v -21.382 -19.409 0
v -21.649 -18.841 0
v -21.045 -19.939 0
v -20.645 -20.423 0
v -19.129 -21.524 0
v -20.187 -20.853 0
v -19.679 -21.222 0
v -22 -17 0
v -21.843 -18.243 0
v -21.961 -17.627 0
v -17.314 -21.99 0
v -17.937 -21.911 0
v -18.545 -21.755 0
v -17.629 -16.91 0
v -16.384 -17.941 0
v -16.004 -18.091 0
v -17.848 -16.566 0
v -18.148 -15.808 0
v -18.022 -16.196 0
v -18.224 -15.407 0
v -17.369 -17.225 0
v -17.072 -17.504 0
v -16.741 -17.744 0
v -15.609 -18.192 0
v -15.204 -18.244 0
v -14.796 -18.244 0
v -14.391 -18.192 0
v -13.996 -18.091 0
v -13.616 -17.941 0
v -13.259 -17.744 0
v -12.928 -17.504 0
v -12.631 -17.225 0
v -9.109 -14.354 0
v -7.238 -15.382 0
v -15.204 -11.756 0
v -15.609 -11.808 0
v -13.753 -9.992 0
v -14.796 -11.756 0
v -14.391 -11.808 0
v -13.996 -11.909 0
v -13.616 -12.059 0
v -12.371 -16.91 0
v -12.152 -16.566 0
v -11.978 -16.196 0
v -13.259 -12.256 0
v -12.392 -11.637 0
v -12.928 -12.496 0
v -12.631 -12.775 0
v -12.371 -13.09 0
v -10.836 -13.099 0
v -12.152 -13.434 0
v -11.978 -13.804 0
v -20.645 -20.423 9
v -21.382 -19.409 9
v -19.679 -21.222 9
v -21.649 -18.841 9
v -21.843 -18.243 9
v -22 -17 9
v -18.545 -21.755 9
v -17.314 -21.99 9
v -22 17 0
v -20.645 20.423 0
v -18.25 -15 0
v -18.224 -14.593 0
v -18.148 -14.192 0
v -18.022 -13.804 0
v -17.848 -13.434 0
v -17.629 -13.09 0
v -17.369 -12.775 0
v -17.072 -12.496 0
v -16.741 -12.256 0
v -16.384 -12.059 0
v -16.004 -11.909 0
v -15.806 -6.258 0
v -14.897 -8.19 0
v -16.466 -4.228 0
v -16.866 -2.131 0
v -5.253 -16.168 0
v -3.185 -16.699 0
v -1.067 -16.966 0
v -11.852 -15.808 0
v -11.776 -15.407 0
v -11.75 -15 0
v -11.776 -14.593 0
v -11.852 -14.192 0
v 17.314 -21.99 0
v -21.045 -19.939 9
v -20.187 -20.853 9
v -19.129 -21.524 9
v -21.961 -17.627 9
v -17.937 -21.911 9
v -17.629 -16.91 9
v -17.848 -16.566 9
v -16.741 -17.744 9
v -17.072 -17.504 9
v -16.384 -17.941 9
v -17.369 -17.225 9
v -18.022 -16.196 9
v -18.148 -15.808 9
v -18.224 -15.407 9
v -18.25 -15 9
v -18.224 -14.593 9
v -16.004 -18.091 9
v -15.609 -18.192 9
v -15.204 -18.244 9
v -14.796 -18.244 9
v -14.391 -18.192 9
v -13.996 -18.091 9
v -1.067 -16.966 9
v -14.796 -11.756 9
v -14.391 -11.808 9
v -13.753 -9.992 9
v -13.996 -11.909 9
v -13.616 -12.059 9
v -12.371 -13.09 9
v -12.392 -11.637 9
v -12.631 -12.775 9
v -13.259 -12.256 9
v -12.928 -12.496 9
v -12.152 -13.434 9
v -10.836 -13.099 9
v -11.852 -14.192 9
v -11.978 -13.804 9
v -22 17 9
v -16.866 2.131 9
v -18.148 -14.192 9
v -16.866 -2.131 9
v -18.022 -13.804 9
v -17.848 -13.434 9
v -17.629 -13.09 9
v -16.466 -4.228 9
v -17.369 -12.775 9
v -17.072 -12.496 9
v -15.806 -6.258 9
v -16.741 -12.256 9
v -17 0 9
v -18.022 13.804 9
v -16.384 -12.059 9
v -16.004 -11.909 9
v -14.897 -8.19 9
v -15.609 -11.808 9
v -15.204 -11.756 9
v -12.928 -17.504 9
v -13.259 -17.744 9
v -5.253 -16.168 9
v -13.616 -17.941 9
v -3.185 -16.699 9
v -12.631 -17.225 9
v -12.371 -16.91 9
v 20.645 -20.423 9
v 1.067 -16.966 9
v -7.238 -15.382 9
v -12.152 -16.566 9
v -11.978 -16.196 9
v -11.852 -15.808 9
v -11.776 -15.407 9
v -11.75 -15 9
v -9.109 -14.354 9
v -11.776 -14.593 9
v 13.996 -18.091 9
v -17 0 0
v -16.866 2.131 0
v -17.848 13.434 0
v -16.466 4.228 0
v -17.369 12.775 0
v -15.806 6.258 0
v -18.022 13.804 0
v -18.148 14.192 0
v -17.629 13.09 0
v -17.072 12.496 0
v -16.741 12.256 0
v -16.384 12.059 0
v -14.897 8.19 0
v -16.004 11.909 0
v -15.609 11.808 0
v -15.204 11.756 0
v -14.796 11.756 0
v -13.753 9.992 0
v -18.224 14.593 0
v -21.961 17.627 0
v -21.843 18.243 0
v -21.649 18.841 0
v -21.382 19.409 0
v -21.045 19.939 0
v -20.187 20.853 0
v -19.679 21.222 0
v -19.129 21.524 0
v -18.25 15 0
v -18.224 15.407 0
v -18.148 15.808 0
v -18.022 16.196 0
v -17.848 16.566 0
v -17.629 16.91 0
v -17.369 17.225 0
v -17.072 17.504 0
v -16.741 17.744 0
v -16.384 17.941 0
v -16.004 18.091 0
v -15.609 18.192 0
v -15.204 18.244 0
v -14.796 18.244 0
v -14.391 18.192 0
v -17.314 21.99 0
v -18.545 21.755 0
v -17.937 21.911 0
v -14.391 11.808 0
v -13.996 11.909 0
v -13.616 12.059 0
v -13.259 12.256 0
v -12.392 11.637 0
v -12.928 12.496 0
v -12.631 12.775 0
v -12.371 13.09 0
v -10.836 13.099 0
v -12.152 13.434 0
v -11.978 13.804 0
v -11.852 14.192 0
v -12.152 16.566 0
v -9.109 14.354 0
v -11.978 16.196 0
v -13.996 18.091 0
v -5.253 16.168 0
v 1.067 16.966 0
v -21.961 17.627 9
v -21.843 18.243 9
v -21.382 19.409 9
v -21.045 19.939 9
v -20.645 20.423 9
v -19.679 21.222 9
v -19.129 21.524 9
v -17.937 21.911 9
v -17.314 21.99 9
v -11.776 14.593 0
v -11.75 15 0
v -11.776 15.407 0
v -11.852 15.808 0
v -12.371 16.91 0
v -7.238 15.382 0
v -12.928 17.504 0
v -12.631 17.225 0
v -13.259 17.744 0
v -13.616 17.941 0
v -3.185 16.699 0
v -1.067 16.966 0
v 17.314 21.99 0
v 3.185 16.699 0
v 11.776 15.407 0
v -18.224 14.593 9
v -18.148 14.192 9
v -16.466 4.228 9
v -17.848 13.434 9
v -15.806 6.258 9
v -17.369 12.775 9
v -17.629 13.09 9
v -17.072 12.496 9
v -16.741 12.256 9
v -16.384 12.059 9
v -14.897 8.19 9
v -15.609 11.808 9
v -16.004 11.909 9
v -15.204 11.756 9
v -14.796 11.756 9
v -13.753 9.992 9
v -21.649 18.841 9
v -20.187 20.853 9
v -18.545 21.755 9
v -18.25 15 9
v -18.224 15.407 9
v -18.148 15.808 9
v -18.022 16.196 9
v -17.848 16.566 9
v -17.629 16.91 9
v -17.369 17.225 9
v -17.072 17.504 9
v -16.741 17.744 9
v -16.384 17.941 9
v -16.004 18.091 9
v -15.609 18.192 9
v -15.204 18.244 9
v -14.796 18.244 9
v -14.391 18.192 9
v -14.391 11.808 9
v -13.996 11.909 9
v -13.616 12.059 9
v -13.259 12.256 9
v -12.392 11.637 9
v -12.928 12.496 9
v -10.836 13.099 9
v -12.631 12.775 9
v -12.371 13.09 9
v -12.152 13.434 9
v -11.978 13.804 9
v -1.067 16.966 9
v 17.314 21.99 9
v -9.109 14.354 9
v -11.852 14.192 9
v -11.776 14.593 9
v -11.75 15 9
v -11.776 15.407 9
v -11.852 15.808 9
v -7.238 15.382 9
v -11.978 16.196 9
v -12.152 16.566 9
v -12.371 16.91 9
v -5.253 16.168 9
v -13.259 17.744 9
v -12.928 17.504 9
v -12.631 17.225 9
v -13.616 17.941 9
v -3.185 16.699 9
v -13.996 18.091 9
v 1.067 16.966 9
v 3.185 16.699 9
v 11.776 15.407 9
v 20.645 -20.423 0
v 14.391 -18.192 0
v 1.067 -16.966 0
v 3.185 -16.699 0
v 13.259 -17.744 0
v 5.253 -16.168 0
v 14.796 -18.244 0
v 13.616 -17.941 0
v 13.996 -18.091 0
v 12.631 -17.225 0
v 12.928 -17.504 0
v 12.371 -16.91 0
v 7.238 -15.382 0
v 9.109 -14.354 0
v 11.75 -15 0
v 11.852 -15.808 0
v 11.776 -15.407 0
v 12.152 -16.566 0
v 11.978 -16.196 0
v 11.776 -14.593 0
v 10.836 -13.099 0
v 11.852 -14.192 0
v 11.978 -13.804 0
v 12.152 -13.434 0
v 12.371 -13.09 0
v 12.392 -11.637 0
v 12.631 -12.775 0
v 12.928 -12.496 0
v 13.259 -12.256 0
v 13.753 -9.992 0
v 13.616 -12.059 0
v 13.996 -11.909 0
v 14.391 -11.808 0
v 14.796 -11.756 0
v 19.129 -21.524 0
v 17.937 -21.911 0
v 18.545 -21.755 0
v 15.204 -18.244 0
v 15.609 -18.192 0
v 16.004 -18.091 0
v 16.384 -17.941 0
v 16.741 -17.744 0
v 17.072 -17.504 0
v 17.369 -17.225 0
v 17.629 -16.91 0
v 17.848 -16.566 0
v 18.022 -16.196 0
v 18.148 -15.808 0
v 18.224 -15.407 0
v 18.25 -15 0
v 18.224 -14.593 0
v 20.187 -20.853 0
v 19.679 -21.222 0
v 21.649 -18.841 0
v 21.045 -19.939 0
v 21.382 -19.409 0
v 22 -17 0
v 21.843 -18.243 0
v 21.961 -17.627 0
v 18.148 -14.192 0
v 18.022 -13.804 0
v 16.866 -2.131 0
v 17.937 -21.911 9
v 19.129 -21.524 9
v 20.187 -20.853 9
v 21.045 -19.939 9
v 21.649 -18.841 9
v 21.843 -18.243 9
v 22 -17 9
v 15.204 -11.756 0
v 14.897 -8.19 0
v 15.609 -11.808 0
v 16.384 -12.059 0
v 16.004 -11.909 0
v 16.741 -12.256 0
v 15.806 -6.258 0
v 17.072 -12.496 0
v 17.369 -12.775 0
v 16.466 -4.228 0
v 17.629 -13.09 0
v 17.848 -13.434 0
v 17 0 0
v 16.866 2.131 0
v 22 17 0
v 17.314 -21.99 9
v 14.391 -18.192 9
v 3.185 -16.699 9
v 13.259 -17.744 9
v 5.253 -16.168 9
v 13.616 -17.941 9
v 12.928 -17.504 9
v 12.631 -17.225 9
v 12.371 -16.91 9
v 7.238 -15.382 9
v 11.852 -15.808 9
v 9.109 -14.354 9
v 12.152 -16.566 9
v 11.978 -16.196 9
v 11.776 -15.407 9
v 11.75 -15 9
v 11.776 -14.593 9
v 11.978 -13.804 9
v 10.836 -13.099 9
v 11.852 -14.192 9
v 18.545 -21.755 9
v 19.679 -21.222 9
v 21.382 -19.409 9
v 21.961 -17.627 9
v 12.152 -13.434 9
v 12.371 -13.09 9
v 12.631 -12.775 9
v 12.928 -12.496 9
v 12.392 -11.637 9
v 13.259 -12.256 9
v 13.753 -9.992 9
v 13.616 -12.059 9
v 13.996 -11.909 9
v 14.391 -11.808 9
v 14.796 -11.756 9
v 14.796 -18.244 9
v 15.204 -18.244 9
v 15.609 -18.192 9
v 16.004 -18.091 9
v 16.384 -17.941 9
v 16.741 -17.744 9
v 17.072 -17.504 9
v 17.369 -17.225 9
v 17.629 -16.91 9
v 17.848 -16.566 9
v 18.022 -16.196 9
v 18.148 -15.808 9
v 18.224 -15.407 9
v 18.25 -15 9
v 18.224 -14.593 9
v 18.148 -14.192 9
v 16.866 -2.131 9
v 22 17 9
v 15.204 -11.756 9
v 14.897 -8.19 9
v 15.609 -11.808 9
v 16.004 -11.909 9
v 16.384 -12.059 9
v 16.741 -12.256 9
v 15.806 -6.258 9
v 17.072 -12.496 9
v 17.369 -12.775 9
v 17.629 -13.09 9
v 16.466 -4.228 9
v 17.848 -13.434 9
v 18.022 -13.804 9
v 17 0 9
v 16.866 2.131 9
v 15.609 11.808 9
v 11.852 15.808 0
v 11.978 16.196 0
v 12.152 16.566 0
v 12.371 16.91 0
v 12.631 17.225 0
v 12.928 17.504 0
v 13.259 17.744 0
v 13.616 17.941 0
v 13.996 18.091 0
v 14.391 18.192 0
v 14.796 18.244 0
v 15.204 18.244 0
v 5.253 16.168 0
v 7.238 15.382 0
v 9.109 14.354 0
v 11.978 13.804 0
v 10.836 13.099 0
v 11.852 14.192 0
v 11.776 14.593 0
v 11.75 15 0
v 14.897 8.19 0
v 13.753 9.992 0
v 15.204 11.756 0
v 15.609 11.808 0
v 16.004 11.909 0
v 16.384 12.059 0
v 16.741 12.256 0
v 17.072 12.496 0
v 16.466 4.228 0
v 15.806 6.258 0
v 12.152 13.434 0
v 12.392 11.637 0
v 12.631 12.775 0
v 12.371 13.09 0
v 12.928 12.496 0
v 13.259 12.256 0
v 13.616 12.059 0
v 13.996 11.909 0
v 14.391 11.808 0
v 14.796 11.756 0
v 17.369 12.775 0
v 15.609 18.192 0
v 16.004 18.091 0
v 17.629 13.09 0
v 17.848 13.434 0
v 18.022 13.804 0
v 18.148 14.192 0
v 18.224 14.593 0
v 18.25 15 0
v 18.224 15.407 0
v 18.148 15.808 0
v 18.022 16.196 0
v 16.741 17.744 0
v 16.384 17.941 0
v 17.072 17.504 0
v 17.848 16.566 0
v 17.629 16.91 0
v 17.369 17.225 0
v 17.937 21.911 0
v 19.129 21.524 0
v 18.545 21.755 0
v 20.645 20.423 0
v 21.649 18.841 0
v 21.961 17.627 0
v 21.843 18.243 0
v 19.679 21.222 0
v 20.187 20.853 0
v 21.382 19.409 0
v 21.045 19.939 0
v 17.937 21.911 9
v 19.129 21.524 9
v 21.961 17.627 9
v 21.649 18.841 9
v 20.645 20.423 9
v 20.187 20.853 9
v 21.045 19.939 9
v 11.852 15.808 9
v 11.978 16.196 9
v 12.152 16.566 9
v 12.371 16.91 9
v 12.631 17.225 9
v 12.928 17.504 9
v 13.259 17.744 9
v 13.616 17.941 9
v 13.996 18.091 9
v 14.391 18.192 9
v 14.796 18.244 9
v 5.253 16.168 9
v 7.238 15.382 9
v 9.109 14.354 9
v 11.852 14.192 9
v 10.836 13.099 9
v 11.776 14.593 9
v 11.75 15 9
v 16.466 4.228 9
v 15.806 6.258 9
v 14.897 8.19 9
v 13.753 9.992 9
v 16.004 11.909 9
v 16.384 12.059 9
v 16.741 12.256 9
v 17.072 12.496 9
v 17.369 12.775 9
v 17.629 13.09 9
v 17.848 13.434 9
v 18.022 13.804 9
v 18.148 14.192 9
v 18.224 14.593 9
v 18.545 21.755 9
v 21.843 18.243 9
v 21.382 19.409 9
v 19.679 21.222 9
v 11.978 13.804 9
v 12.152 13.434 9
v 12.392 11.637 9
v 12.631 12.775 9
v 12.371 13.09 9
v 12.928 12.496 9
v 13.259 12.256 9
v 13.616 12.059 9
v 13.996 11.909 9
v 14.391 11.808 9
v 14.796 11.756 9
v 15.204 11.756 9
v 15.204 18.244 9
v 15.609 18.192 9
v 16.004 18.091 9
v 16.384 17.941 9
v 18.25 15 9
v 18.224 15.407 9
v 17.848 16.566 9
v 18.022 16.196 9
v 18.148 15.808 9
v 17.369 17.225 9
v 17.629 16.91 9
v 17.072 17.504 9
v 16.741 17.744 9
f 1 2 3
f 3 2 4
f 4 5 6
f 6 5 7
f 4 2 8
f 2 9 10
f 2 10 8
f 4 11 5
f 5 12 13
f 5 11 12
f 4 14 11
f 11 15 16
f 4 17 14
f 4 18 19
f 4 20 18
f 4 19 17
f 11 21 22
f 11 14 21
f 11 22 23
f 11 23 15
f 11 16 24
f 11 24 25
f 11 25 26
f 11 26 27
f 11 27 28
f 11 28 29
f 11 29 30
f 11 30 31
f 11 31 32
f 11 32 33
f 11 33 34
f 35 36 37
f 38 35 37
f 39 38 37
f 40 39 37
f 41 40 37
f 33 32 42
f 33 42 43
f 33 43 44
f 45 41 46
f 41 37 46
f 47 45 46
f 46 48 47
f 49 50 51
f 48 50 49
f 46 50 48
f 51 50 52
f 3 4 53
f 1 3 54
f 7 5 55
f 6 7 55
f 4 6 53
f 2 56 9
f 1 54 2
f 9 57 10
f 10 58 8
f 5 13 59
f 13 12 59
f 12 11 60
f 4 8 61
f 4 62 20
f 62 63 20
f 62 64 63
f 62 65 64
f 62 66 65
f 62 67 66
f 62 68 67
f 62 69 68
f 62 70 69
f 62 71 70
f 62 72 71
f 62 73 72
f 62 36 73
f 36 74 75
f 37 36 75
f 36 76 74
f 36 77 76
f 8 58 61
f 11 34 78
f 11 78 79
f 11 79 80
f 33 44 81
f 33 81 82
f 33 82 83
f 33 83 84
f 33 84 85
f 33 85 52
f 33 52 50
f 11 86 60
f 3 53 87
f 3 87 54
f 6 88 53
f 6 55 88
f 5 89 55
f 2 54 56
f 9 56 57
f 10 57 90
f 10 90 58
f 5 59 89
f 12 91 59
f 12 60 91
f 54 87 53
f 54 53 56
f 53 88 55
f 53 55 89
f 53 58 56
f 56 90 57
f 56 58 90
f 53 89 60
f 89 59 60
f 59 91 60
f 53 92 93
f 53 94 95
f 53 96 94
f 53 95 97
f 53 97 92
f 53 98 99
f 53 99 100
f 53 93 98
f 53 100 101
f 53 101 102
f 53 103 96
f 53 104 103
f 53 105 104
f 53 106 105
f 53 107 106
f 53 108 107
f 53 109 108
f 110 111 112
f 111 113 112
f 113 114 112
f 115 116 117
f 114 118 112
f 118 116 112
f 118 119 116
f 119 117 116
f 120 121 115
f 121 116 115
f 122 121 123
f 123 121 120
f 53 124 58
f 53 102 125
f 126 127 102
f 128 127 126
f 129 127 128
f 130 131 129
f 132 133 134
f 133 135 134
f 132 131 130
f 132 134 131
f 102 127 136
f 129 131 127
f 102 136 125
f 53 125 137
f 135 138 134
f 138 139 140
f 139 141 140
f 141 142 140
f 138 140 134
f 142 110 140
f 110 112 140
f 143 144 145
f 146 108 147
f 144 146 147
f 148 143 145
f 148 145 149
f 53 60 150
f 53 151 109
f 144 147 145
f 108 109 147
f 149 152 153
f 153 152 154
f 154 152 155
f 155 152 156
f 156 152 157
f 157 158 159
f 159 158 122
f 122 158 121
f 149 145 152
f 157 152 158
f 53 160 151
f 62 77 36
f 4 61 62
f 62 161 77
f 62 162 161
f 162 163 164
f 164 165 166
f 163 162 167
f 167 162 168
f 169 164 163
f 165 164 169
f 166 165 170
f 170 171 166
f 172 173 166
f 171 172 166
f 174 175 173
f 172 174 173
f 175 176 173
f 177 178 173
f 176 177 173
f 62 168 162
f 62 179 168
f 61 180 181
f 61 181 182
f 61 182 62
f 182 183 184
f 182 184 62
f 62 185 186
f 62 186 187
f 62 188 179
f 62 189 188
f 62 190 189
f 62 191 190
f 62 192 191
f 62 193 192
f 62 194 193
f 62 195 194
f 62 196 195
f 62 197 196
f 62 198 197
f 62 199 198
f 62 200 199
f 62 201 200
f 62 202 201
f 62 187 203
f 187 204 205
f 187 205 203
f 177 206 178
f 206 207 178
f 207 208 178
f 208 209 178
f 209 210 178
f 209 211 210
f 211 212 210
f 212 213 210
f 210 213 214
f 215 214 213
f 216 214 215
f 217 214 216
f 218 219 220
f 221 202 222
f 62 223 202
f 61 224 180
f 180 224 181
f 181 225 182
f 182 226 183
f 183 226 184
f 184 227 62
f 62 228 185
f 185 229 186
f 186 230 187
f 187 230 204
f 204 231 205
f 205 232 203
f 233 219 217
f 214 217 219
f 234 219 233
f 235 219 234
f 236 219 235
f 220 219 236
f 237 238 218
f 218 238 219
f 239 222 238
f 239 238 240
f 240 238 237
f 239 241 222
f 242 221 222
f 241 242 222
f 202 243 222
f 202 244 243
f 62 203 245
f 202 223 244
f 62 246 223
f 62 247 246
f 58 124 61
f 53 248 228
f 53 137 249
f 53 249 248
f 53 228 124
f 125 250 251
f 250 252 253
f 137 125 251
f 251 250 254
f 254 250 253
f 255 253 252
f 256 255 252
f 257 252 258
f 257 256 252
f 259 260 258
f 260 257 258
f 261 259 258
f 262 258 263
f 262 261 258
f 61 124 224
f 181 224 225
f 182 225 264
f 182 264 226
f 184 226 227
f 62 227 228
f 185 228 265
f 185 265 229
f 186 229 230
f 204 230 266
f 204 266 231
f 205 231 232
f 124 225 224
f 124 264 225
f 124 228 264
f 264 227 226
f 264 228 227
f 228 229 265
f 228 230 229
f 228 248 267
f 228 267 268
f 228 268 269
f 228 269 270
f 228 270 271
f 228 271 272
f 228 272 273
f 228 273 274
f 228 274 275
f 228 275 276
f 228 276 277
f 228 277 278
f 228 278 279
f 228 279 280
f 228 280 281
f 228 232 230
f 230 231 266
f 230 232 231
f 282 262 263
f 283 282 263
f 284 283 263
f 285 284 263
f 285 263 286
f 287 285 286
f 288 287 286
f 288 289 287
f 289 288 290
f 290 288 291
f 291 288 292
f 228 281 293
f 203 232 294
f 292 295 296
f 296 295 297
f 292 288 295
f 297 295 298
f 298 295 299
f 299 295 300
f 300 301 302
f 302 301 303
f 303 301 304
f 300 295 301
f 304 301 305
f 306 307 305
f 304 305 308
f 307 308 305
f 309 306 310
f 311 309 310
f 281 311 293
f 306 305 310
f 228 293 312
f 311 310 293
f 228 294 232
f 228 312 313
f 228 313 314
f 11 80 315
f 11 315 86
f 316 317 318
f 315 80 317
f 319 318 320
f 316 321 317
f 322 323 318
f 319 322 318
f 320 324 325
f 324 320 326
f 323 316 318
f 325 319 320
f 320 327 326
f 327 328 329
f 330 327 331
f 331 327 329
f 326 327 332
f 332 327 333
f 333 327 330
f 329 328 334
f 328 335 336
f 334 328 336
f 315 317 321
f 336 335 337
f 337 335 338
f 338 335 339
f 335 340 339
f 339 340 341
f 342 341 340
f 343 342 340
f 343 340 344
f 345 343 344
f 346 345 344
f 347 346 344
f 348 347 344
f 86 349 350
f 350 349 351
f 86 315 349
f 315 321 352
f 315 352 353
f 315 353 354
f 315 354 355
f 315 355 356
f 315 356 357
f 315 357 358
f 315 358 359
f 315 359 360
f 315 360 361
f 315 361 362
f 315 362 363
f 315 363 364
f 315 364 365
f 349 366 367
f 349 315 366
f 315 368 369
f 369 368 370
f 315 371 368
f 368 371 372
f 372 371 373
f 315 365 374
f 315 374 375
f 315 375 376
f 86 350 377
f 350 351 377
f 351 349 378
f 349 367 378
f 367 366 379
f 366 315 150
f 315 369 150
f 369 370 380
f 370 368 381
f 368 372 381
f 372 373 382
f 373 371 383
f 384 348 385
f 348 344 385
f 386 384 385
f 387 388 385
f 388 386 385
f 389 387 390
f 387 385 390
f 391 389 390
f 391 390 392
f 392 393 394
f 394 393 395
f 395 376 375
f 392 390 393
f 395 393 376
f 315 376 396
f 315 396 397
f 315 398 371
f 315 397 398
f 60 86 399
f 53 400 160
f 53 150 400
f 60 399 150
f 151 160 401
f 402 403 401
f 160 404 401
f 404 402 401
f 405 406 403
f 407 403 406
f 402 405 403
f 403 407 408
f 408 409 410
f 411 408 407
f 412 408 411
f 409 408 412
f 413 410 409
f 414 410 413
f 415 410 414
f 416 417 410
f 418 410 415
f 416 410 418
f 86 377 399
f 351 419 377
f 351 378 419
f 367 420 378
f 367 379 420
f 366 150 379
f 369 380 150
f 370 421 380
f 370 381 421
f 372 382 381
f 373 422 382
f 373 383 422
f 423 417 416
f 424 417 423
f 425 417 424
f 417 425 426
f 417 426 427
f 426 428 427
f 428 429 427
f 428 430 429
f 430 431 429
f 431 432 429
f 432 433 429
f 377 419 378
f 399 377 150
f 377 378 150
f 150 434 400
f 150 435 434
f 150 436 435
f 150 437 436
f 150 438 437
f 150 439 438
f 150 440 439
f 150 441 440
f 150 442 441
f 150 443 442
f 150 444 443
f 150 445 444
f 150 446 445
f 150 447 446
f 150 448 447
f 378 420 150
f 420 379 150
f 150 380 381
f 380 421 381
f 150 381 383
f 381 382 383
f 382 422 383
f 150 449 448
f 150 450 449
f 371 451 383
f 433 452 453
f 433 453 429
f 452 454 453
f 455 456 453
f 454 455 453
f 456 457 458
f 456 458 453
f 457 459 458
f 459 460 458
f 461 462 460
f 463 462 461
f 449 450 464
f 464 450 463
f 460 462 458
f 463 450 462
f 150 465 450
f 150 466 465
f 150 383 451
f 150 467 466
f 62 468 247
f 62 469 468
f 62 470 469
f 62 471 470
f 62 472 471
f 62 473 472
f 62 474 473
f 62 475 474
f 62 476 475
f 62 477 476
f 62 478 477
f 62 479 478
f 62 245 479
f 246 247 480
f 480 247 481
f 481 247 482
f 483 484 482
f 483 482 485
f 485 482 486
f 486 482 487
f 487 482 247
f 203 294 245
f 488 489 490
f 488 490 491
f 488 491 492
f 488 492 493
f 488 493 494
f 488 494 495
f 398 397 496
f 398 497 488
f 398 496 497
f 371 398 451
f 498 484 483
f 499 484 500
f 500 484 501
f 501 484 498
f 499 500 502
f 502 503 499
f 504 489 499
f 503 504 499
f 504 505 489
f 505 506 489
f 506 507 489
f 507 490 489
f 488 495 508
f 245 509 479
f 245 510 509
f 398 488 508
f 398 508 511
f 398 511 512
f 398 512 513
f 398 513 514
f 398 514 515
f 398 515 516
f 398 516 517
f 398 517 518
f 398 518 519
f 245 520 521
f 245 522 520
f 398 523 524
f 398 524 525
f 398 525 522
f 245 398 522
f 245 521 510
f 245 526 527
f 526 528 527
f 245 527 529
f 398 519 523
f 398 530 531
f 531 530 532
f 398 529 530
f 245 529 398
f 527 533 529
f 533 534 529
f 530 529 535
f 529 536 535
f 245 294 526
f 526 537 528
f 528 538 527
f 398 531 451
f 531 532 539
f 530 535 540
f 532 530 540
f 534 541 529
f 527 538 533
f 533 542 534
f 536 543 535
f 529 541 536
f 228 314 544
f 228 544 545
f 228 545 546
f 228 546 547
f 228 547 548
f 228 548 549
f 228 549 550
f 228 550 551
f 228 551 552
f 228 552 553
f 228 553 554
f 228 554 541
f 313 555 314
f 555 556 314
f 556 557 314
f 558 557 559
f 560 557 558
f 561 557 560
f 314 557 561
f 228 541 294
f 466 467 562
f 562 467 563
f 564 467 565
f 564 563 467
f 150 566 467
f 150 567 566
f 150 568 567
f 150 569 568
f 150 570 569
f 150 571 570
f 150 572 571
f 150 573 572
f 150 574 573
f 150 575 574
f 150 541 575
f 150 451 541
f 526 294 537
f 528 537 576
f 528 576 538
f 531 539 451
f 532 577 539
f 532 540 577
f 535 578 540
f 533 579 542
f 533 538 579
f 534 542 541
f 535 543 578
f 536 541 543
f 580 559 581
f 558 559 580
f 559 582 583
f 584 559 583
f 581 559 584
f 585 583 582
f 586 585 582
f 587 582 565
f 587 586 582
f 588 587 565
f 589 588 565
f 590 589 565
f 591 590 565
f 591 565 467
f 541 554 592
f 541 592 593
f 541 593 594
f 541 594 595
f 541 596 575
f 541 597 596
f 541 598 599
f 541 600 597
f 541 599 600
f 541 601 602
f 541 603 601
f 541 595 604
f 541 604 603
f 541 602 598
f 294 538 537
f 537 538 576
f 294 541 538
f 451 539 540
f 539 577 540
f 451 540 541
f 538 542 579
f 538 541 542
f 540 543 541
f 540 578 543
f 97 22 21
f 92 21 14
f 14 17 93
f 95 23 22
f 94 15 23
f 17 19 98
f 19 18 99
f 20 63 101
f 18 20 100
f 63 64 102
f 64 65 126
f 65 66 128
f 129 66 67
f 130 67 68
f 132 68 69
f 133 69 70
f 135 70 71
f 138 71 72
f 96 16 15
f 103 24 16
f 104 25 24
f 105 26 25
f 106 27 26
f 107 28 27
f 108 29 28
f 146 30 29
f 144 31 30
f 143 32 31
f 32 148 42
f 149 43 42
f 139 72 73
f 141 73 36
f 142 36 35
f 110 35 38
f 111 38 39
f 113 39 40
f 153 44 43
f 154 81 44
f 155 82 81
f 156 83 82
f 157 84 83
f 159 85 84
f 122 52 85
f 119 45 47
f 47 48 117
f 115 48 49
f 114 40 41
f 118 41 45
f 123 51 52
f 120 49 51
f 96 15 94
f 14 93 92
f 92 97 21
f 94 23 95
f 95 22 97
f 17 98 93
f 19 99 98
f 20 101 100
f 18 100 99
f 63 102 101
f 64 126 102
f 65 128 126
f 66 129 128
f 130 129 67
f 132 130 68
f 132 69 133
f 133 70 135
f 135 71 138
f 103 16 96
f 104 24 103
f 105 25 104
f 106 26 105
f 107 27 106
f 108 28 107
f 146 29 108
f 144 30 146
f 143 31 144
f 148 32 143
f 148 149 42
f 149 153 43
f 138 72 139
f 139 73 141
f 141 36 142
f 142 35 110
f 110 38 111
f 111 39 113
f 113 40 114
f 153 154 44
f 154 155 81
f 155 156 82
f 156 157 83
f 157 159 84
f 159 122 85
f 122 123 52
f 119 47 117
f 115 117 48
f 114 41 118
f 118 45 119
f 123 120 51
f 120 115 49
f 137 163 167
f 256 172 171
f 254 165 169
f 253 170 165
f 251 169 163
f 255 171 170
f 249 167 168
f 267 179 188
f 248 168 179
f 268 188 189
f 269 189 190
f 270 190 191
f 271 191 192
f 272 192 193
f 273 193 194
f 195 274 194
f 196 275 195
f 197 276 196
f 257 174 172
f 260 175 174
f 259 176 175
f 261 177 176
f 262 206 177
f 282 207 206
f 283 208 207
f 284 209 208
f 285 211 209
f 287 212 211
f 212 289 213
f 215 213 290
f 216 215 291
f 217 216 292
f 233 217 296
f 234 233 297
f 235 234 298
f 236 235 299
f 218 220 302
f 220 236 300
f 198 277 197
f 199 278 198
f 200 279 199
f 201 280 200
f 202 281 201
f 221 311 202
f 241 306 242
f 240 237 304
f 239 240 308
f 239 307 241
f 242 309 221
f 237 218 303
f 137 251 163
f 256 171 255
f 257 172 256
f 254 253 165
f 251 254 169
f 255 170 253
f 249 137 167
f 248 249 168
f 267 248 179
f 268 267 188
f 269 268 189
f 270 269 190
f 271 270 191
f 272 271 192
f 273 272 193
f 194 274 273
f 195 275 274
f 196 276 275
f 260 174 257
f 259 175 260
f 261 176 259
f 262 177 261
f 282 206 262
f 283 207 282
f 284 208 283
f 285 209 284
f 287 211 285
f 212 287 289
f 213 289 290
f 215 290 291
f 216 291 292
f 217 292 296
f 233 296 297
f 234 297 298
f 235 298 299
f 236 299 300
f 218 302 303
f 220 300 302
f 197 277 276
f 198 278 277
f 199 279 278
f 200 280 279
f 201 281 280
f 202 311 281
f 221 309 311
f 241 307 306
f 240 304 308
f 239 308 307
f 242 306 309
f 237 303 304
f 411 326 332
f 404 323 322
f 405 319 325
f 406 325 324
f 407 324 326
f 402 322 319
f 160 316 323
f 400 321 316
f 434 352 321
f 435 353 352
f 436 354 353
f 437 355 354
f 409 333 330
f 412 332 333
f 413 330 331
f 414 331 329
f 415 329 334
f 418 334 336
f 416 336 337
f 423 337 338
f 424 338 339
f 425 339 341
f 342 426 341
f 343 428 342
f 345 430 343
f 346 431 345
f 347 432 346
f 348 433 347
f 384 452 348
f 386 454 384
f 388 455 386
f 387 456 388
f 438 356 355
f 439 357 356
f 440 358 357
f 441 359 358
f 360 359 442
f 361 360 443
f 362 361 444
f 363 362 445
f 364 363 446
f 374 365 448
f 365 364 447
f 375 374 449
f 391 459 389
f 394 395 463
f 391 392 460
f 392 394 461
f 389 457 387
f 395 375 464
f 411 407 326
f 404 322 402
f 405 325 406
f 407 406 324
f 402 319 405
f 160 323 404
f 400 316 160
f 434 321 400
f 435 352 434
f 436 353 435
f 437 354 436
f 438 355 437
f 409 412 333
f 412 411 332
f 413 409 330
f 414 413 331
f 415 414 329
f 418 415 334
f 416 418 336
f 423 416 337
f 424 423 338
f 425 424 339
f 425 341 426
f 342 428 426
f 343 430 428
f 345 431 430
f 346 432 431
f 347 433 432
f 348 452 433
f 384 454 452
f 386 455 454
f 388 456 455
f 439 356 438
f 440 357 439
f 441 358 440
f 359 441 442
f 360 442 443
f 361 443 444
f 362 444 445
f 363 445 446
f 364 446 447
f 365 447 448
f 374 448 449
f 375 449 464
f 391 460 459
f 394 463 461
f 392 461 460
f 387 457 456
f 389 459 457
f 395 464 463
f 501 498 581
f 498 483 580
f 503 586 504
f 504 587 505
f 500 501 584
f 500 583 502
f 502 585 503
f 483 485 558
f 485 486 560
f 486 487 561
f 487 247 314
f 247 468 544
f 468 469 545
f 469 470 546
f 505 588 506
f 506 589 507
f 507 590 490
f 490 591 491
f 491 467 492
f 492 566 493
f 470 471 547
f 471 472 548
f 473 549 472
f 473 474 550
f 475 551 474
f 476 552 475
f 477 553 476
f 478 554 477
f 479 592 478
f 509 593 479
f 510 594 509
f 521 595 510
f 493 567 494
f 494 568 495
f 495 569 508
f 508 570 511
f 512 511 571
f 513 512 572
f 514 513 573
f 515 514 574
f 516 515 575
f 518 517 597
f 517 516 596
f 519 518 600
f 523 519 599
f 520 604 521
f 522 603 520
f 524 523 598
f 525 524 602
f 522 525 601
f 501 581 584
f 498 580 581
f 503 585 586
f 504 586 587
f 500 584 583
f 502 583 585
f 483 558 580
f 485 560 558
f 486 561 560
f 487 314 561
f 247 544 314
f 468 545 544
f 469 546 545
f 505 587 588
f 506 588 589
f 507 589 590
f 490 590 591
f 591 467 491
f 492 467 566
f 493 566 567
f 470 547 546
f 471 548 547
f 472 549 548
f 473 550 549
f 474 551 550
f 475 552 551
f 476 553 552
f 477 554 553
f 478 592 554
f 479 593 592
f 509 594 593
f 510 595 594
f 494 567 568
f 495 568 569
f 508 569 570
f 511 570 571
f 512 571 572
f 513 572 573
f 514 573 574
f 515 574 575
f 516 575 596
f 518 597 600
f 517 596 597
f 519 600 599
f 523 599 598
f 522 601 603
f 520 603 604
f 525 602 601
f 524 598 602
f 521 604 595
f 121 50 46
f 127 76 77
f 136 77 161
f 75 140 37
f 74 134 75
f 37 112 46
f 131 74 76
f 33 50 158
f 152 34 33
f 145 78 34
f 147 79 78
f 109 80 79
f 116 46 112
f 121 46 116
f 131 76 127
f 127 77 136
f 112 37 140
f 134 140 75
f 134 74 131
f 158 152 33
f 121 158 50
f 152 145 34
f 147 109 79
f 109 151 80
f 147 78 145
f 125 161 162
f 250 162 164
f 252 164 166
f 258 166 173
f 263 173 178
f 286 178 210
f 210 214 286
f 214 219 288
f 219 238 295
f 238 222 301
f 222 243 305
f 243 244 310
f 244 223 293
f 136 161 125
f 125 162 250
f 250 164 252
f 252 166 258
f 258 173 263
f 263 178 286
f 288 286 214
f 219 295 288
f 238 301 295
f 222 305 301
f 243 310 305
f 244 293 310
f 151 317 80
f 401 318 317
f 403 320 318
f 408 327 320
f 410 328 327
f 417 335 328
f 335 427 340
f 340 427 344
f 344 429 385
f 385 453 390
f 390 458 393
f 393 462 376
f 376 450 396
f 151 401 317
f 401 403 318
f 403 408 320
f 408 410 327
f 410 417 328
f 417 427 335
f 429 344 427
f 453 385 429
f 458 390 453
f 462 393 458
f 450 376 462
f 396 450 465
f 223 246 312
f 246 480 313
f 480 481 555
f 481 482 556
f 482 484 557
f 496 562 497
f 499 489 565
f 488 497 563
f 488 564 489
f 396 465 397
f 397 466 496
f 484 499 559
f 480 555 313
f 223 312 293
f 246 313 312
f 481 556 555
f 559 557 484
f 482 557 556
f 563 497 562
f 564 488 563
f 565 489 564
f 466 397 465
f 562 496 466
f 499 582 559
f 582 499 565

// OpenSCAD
$fn = 50;

difference() {
	union() {
		hull() {
			translate(v = [-17.0, 17.0, 0]) {
				cylinder(h = 9, r = 5);
			}
			translate(v = [17.0, 17.0, 0]) {
				cylinder(h = 9, r = 5);
			}
			translate(v = [-17.0, -17.0, 0]) {
				cylinder(h = 9, r = 5);
			}
			translate(v = [17.0, -17.0, 0]) {
				cylinder(h = 9, r = 5);
			}
		}
	}
	union() {
		translate(v = [-15.0, -15.0, -100.0]) {
			cylinder(h = 200, r = 3.25);
		}
		translate(v = [-15.0, 15.0, -100.0]) {
			cylinder(h = 200, r = 3.25);
		}
		translate(v = [15.0, -15.0, -100.0]) {
			cylinder(h = 200, r = 3.25);
		}
		translate(v = [15.0, 15.0, -100.0]) {
			cylinder(h = 200, r = 3.25);
		}
		translate(v = [-15.0, -15.0, -100.0]) {
			cylinder(h = 200, r = 1.8);
		}
		translate(v = [-15.0, 15.0, -100.0]) {
			cylinder(h = 200, r = 1.8);
		}
		translate(v = [15.0, -15.0, -100.0]) {
			cylinder(h = 200, r = 1.8);
		}
		translate(v = [15.0, 15.0, -100.0]) {
			cylinder(h = 200, r = 1.8);
		}
		cylinder(h = 9, r = 17.0);
	}
}
